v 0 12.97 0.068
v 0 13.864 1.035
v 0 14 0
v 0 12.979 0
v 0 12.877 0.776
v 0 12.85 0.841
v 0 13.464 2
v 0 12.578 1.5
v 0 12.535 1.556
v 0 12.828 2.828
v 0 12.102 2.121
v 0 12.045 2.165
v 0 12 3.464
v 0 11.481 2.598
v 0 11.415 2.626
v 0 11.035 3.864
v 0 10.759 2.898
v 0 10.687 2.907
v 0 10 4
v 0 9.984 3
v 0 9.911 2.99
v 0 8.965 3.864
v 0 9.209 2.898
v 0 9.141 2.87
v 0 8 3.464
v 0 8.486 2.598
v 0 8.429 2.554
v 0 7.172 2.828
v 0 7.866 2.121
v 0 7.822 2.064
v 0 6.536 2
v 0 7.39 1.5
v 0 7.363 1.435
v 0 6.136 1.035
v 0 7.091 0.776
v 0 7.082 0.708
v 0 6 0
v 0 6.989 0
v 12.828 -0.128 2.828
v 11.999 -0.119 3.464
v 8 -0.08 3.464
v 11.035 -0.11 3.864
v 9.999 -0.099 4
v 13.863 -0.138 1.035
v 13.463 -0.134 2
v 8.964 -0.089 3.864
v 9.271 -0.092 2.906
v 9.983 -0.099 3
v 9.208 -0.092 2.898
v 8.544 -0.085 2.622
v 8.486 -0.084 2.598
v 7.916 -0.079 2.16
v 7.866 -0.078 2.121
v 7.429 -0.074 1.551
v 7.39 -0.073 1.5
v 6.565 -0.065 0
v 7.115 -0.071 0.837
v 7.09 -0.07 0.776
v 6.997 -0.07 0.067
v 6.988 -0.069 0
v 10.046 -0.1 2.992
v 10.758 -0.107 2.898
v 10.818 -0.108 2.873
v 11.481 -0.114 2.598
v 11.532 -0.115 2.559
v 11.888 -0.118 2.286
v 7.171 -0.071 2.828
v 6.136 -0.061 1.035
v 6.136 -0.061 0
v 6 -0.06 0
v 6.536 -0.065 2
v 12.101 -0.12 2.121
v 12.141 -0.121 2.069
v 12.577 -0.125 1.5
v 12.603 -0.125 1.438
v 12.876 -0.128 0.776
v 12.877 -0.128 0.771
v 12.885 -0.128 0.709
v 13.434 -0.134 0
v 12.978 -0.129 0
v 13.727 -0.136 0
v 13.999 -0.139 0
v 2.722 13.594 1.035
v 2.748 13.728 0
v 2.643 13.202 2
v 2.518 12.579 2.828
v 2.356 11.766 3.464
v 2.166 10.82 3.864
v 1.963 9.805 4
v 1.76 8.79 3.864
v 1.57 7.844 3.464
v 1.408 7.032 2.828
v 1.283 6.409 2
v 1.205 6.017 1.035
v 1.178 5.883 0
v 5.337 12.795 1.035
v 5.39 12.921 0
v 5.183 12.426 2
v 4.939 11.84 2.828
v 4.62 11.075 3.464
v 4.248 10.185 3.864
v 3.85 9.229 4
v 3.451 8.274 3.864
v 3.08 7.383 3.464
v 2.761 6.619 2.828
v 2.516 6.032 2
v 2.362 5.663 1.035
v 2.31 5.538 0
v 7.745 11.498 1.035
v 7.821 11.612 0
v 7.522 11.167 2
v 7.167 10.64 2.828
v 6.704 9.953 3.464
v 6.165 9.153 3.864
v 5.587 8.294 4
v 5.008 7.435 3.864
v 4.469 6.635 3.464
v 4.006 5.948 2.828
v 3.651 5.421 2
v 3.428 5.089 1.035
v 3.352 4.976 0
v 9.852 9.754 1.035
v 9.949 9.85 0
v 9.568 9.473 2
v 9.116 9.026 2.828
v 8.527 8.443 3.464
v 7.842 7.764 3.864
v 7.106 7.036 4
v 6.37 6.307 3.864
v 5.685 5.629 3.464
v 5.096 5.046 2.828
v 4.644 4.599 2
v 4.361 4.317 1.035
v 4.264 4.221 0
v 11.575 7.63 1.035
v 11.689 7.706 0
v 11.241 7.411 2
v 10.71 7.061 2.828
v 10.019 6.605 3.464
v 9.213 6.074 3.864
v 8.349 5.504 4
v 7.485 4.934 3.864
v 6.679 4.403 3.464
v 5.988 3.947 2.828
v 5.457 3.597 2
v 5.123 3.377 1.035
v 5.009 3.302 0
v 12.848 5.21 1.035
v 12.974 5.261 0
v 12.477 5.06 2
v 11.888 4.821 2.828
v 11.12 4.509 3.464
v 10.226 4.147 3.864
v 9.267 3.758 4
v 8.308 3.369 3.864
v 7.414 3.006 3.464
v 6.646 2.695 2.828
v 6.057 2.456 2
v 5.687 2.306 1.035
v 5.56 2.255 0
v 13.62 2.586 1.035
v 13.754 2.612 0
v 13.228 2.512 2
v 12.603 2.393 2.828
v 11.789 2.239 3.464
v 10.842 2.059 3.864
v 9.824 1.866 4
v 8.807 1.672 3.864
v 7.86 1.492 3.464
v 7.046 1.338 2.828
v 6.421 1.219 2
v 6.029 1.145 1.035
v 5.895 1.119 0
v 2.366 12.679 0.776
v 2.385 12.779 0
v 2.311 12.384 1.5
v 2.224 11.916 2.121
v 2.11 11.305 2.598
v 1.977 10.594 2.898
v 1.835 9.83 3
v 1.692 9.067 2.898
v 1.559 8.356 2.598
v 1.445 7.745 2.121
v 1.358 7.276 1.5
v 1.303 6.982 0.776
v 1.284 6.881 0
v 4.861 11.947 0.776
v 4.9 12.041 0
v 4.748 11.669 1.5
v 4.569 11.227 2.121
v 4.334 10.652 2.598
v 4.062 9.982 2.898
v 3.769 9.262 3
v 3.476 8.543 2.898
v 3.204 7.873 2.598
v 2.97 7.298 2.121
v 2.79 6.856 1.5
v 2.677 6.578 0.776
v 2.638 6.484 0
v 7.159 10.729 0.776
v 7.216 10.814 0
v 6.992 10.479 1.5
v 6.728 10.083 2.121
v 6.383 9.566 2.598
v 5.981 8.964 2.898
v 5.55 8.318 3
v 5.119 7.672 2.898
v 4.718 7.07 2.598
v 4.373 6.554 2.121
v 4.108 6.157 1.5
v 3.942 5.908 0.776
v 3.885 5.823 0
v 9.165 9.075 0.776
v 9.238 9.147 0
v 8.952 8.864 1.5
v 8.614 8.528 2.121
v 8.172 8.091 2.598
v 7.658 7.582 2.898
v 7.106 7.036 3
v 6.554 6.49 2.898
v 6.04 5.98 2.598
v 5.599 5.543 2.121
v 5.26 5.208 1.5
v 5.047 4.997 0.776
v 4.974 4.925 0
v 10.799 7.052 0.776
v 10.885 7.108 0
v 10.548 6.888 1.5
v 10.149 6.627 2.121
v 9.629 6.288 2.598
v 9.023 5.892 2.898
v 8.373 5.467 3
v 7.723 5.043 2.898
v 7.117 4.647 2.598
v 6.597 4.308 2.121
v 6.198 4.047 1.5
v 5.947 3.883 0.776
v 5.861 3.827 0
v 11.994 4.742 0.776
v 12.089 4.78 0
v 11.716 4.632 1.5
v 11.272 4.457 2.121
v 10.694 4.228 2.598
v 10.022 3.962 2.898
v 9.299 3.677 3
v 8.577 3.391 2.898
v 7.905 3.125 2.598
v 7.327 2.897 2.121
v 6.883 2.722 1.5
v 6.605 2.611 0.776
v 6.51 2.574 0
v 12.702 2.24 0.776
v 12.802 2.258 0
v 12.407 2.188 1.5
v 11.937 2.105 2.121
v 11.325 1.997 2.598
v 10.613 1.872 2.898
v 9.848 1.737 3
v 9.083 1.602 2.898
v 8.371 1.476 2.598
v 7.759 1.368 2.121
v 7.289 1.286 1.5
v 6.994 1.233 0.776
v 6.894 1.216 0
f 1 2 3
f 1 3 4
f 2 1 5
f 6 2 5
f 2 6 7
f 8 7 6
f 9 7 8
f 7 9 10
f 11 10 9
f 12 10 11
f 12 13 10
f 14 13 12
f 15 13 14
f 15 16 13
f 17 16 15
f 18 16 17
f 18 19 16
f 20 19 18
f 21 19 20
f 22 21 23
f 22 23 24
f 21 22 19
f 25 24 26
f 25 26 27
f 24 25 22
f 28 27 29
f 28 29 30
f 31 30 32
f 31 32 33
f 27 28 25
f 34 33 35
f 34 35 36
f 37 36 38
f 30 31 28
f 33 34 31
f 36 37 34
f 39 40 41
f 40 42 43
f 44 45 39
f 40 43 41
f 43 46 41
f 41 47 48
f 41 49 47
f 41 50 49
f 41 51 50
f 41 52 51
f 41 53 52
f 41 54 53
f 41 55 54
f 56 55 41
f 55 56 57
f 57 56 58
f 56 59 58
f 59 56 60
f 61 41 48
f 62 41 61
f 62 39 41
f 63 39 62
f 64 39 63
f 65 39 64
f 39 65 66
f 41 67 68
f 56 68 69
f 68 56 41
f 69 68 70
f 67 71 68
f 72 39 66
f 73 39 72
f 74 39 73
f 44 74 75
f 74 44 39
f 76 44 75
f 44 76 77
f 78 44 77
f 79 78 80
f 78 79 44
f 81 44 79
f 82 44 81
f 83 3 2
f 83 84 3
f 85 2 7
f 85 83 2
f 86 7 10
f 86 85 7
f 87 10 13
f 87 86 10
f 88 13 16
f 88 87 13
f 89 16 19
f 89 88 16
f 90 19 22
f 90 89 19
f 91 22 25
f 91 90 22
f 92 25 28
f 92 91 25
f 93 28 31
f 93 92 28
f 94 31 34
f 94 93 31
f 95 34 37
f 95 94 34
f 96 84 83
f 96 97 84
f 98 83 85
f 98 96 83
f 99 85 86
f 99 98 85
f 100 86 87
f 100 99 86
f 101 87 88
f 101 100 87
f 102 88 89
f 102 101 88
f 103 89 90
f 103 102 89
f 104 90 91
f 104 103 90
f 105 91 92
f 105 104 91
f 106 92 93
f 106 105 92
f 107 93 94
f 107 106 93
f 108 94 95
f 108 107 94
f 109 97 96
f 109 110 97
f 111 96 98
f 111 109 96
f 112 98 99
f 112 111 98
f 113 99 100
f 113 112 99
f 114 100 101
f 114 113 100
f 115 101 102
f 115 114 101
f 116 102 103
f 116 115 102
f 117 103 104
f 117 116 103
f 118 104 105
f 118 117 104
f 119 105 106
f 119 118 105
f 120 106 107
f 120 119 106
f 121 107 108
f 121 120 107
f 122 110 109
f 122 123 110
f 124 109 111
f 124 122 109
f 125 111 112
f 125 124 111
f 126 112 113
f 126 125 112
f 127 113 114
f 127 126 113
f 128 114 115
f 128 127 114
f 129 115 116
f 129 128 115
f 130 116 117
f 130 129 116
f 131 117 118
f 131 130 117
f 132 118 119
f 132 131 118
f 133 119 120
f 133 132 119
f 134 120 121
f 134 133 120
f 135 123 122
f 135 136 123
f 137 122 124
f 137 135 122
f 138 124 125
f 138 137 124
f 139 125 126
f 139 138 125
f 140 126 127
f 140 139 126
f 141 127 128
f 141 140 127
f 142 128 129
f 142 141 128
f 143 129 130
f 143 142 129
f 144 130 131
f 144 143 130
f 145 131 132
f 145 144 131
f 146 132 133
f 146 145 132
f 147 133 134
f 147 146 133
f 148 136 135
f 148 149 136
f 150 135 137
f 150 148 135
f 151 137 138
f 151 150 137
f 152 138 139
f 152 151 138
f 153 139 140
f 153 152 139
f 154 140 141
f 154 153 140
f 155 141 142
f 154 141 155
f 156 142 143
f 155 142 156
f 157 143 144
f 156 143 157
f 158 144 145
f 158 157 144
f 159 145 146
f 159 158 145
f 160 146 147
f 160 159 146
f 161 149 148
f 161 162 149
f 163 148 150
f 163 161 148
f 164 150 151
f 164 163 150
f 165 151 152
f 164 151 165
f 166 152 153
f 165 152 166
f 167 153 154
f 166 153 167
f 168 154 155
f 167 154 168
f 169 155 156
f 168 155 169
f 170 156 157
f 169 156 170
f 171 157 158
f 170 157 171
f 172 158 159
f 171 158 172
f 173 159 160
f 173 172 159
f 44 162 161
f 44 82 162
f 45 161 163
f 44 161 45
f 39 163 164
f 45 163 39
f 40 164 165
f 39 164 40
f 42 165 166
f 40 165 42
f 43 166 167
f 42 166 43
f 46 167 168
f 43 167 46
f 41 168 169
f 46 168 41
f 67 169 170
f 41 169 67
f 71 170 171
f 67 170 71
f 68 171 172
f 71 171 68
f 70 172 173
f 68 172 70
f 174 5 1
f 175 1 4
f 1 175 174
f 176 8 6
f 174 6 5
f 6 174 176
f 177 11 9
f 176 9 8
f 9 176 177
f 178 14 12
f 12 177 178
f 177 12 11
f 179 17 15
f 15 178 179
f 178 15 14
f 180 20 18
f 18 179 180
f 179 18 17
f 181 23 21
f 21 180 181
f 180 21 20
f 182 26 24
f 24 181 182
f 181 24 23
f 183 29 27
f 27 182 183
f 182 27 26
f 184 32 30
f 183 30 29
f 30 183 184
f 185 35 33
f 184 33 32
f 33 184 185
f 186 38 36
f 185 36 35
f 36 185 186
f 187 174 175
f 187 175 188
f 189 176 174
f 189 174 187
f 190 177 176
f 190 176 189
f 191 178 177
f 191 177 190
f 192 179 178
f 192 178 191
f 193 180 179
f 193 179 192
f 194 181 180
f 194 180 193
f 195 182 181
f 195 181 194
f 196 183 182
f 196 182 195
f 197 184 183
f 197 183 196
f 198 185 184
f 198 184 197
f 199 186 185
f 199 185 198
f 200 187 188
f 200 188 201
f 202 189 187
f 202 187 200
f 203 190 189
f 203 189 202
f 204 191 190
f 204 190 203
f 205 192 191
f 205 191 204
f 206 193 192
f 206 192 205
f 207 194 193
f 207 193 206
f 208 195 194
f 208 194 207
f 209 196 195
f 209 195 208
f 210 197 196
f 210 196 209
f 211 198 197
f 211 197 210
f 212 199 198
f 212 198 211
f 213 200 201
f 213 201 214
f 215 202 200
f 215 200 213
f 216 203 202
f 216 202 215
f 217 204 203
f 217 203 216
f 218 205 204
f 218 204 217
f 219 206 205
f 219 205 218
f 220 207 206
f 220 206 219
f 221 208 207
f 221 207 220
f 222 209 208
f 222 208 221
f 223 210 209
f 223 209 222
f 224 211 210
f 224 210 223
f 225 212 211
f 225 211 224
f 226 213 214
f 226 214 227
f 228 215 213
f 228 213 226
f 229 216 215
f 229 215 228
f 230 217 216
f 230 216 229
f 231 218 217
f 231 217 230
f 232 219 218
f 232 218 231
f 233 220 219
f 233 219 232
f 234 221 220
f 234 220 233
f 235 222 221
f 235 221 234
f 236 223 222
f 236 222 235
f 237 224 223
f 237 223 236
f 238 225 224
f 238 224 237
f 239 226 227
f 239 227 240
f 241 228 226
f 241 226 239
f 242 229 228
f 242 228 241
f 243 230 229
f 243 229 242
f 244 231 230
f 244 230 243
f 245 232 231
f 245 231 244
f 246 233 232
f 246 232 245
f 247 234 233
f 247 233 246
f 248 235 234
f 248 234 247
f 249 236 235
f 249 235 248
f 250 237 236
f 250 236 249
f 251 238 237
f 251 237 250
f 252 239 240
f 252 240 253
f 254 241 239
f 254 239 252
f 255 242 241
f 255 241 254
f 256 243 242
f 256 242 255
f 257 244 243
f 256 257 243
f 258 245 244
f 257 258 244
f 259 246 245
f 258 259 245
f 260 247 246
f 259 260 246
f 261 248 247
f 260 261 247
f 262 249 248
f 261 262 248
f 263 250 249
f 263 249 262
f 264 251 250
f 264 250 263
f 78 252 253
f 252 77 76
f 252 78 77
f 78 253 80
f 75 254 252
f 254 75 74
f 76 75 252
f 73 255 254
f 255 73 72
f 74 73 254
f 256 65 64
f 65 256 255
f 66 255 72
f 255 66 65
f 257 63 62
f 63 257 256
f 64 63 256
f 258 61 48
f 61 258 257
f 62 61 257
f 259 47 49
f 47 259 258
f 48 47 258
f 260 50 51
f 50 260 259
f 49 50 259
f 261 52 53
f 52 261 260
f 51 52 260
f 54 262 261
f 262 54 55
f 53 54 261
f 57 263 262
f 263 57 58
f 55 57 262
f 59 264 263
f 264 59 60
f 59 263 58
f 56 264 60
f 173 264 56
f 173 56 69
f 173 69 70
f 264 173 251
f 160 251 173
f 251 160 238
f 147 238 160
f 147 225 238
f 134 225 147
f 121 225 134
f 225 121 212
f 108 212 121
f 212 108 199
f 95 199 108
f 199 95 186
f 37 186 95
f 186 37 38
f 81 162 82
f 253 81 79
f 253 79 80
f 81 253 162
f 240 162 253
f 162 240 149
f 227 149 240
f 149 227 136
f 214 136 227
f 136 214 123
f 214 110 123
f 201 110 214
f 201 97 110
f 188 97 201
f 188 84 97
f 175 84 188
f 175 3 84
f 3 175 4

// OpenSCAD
// file: ../build_environments.scad
// build_environments.scad: modules to build level sections
//

module pool(diameter=10.0, wall_height=2.0, step_width=3.0, connections=[])
{
    difference() {
        union() {
        difference() {
            cylinder(h=0.5,r1=diameter+step_width,r2=diameter+step_width,$fn=48);
            translate([0,0,-0.1])
                cylinder(h=0.7,r1=diameter,r2=diameter,$fn=48);
        }
        difference() {
            cylinder(h=wall_height,r1=diameter+step_width+1.0,r2=diameter+step_width+1.0,$fn=48);
            translate([0,0,-0.1])
                cylinder(h=wall_height+0.2,r1=diameter+step_width,r2=diameter+step_width,$fn=48);
        }
        }
    
        for (c = connections)
        {
            rotate([0,90,0]) {
                angle = atan2(c[1],c[0]);
                rotate([-angle,0,0]) {
                    cylinder(h=diameter+5.0,r1=c[2],r2=c[2],$fn=48);
                }
            }
        }
    }
}

module straight(length=10.0, width=2.0, dy1=0.0, dy2=0.0, dz=0.0)
{
    dims = [0, 0, 0, 0, 0, (dz/length)];
    matrix = [
        [ 1, dims[0], dims[1], 0 ],
        [ dims[2], 1, dims[4], 0 ],
        [ dims[5], dims[3], 1, 0 ],
        [ 0, 0, 0, 1 ]
    ];
    multmatrix(matrix)
    difference() {
        translate([dy1,0,0])
        union() {
            rotate([0,90,0]) {
                difference() {
                    cylinder(h=(length-dy1-dy2),r1=width+1.0,r2=width+1.0,$fn=24);
                    translate([0,0,-0.1])
                        cylinder(h=(length-dy1-dy2+0.2),r1=width,r2=width,$fn=24);
                }
                difference() {
                    cylinder(h=1.0,r1=width+2.0,r2=width+2.0,$fn=24);
                    translate([0,0,-0.1])
                        cylinder(h=1.2,r1=width,r2=width,$fn=24);
                }
                translate([0,0,(length-dy1-dy2)-1.0]) {
                    difference() {
                        cylinder(h=1.0,r1=width+2.0,r2=width+2.0,$fn=24);
                        translate([0,0,-0.1])
                            cylinder(h=1.2,r1=width,r2=width,$fn=24);
                    }
                }
            }
        }
        translate([0,0,-(2*width+4.0)/2])
            cube([3*length,3*length,2*width+4.0],center=true);
    }
}

module curve(p0=[0,0], center=[0,0], dir=1, angle=0.0, width=2.0)
{
    radius = sqrt((p0[0]-center[0])*(p0[0]-center[0]) + (p0[1]-center[1])*(p0[1]-center[1]));
    if (dir == 0) {
        difference() {
            rotate([0,0,-90])
            difference() {
                rotate_extrude(angle = angle, convexity = 10, $fn=32)
                    translate([radius, 0, 0])
                        circle(r = width+1.0,$fn=24);
                rotate([0,0,-1.0])
                    rotate_extrude(angle = angle+2.0, convexity = 10, $fn=32)
                        translate([radius, 0, 0])
                            circle(r = width,$fn=24);
            }
            translate([0,0,-(2*width+4.0)/2])
                cube([5*radius,5*radius,2*width+4.0],center=true);
        }
    }
    else {
        difference() {
            rotate([0,0,90])
            difference() {
                rotate_extrude(angle = -angle, convexity = 10, $fn=32)
                    translate([radius, 0, 0])
                        circle(r = width+1.0,$fn=24);
                rotate([0,0,1.0])
                    rotate_extrude(angle = -angle-2.0, convexity = 10, $fn=32)
                        translate([radius, 0, 0])
                            circle(r = width,$fn=24);
            }
            translate([0,0,-(2*width+4.0)/2])
                cube([5*radius,5*radius,2*width+4.0],center=true);
        }
    }

}

// test pool
//pool(diameter=12.0000, wall_height=3.0000, step_width=3.0000, connections=[[0.0000,-26.0000,2.0000], [23.6074,0.0000,2.0000]]);

// test straight, slope
//straight(length=26.0000, width=2.0000, dy1=11.8322, dy2=6.7082, dz=0.0000);
//straight(length=29.1549, width=12.0000, dy1=0.0000, dy2=0.0000, dz=-15.0000);

// test curve
//curve(p0=[23.6074, 0.0000], center=[23.6074, 5.0000], dir=0, angle=60.1011, width=2.0000);
//curve(p0=[33.6426, 12.4219], center=[37.9771, 9.9295], dir=1, angle=120.4627, width=2.0000);
// main file
use <../build_environments.scad>;
curve(p0=[-31.8619, 122.4139], center=[-41.5540, 119.9516], dir=1, angle=90.5695, width=3.0000);
